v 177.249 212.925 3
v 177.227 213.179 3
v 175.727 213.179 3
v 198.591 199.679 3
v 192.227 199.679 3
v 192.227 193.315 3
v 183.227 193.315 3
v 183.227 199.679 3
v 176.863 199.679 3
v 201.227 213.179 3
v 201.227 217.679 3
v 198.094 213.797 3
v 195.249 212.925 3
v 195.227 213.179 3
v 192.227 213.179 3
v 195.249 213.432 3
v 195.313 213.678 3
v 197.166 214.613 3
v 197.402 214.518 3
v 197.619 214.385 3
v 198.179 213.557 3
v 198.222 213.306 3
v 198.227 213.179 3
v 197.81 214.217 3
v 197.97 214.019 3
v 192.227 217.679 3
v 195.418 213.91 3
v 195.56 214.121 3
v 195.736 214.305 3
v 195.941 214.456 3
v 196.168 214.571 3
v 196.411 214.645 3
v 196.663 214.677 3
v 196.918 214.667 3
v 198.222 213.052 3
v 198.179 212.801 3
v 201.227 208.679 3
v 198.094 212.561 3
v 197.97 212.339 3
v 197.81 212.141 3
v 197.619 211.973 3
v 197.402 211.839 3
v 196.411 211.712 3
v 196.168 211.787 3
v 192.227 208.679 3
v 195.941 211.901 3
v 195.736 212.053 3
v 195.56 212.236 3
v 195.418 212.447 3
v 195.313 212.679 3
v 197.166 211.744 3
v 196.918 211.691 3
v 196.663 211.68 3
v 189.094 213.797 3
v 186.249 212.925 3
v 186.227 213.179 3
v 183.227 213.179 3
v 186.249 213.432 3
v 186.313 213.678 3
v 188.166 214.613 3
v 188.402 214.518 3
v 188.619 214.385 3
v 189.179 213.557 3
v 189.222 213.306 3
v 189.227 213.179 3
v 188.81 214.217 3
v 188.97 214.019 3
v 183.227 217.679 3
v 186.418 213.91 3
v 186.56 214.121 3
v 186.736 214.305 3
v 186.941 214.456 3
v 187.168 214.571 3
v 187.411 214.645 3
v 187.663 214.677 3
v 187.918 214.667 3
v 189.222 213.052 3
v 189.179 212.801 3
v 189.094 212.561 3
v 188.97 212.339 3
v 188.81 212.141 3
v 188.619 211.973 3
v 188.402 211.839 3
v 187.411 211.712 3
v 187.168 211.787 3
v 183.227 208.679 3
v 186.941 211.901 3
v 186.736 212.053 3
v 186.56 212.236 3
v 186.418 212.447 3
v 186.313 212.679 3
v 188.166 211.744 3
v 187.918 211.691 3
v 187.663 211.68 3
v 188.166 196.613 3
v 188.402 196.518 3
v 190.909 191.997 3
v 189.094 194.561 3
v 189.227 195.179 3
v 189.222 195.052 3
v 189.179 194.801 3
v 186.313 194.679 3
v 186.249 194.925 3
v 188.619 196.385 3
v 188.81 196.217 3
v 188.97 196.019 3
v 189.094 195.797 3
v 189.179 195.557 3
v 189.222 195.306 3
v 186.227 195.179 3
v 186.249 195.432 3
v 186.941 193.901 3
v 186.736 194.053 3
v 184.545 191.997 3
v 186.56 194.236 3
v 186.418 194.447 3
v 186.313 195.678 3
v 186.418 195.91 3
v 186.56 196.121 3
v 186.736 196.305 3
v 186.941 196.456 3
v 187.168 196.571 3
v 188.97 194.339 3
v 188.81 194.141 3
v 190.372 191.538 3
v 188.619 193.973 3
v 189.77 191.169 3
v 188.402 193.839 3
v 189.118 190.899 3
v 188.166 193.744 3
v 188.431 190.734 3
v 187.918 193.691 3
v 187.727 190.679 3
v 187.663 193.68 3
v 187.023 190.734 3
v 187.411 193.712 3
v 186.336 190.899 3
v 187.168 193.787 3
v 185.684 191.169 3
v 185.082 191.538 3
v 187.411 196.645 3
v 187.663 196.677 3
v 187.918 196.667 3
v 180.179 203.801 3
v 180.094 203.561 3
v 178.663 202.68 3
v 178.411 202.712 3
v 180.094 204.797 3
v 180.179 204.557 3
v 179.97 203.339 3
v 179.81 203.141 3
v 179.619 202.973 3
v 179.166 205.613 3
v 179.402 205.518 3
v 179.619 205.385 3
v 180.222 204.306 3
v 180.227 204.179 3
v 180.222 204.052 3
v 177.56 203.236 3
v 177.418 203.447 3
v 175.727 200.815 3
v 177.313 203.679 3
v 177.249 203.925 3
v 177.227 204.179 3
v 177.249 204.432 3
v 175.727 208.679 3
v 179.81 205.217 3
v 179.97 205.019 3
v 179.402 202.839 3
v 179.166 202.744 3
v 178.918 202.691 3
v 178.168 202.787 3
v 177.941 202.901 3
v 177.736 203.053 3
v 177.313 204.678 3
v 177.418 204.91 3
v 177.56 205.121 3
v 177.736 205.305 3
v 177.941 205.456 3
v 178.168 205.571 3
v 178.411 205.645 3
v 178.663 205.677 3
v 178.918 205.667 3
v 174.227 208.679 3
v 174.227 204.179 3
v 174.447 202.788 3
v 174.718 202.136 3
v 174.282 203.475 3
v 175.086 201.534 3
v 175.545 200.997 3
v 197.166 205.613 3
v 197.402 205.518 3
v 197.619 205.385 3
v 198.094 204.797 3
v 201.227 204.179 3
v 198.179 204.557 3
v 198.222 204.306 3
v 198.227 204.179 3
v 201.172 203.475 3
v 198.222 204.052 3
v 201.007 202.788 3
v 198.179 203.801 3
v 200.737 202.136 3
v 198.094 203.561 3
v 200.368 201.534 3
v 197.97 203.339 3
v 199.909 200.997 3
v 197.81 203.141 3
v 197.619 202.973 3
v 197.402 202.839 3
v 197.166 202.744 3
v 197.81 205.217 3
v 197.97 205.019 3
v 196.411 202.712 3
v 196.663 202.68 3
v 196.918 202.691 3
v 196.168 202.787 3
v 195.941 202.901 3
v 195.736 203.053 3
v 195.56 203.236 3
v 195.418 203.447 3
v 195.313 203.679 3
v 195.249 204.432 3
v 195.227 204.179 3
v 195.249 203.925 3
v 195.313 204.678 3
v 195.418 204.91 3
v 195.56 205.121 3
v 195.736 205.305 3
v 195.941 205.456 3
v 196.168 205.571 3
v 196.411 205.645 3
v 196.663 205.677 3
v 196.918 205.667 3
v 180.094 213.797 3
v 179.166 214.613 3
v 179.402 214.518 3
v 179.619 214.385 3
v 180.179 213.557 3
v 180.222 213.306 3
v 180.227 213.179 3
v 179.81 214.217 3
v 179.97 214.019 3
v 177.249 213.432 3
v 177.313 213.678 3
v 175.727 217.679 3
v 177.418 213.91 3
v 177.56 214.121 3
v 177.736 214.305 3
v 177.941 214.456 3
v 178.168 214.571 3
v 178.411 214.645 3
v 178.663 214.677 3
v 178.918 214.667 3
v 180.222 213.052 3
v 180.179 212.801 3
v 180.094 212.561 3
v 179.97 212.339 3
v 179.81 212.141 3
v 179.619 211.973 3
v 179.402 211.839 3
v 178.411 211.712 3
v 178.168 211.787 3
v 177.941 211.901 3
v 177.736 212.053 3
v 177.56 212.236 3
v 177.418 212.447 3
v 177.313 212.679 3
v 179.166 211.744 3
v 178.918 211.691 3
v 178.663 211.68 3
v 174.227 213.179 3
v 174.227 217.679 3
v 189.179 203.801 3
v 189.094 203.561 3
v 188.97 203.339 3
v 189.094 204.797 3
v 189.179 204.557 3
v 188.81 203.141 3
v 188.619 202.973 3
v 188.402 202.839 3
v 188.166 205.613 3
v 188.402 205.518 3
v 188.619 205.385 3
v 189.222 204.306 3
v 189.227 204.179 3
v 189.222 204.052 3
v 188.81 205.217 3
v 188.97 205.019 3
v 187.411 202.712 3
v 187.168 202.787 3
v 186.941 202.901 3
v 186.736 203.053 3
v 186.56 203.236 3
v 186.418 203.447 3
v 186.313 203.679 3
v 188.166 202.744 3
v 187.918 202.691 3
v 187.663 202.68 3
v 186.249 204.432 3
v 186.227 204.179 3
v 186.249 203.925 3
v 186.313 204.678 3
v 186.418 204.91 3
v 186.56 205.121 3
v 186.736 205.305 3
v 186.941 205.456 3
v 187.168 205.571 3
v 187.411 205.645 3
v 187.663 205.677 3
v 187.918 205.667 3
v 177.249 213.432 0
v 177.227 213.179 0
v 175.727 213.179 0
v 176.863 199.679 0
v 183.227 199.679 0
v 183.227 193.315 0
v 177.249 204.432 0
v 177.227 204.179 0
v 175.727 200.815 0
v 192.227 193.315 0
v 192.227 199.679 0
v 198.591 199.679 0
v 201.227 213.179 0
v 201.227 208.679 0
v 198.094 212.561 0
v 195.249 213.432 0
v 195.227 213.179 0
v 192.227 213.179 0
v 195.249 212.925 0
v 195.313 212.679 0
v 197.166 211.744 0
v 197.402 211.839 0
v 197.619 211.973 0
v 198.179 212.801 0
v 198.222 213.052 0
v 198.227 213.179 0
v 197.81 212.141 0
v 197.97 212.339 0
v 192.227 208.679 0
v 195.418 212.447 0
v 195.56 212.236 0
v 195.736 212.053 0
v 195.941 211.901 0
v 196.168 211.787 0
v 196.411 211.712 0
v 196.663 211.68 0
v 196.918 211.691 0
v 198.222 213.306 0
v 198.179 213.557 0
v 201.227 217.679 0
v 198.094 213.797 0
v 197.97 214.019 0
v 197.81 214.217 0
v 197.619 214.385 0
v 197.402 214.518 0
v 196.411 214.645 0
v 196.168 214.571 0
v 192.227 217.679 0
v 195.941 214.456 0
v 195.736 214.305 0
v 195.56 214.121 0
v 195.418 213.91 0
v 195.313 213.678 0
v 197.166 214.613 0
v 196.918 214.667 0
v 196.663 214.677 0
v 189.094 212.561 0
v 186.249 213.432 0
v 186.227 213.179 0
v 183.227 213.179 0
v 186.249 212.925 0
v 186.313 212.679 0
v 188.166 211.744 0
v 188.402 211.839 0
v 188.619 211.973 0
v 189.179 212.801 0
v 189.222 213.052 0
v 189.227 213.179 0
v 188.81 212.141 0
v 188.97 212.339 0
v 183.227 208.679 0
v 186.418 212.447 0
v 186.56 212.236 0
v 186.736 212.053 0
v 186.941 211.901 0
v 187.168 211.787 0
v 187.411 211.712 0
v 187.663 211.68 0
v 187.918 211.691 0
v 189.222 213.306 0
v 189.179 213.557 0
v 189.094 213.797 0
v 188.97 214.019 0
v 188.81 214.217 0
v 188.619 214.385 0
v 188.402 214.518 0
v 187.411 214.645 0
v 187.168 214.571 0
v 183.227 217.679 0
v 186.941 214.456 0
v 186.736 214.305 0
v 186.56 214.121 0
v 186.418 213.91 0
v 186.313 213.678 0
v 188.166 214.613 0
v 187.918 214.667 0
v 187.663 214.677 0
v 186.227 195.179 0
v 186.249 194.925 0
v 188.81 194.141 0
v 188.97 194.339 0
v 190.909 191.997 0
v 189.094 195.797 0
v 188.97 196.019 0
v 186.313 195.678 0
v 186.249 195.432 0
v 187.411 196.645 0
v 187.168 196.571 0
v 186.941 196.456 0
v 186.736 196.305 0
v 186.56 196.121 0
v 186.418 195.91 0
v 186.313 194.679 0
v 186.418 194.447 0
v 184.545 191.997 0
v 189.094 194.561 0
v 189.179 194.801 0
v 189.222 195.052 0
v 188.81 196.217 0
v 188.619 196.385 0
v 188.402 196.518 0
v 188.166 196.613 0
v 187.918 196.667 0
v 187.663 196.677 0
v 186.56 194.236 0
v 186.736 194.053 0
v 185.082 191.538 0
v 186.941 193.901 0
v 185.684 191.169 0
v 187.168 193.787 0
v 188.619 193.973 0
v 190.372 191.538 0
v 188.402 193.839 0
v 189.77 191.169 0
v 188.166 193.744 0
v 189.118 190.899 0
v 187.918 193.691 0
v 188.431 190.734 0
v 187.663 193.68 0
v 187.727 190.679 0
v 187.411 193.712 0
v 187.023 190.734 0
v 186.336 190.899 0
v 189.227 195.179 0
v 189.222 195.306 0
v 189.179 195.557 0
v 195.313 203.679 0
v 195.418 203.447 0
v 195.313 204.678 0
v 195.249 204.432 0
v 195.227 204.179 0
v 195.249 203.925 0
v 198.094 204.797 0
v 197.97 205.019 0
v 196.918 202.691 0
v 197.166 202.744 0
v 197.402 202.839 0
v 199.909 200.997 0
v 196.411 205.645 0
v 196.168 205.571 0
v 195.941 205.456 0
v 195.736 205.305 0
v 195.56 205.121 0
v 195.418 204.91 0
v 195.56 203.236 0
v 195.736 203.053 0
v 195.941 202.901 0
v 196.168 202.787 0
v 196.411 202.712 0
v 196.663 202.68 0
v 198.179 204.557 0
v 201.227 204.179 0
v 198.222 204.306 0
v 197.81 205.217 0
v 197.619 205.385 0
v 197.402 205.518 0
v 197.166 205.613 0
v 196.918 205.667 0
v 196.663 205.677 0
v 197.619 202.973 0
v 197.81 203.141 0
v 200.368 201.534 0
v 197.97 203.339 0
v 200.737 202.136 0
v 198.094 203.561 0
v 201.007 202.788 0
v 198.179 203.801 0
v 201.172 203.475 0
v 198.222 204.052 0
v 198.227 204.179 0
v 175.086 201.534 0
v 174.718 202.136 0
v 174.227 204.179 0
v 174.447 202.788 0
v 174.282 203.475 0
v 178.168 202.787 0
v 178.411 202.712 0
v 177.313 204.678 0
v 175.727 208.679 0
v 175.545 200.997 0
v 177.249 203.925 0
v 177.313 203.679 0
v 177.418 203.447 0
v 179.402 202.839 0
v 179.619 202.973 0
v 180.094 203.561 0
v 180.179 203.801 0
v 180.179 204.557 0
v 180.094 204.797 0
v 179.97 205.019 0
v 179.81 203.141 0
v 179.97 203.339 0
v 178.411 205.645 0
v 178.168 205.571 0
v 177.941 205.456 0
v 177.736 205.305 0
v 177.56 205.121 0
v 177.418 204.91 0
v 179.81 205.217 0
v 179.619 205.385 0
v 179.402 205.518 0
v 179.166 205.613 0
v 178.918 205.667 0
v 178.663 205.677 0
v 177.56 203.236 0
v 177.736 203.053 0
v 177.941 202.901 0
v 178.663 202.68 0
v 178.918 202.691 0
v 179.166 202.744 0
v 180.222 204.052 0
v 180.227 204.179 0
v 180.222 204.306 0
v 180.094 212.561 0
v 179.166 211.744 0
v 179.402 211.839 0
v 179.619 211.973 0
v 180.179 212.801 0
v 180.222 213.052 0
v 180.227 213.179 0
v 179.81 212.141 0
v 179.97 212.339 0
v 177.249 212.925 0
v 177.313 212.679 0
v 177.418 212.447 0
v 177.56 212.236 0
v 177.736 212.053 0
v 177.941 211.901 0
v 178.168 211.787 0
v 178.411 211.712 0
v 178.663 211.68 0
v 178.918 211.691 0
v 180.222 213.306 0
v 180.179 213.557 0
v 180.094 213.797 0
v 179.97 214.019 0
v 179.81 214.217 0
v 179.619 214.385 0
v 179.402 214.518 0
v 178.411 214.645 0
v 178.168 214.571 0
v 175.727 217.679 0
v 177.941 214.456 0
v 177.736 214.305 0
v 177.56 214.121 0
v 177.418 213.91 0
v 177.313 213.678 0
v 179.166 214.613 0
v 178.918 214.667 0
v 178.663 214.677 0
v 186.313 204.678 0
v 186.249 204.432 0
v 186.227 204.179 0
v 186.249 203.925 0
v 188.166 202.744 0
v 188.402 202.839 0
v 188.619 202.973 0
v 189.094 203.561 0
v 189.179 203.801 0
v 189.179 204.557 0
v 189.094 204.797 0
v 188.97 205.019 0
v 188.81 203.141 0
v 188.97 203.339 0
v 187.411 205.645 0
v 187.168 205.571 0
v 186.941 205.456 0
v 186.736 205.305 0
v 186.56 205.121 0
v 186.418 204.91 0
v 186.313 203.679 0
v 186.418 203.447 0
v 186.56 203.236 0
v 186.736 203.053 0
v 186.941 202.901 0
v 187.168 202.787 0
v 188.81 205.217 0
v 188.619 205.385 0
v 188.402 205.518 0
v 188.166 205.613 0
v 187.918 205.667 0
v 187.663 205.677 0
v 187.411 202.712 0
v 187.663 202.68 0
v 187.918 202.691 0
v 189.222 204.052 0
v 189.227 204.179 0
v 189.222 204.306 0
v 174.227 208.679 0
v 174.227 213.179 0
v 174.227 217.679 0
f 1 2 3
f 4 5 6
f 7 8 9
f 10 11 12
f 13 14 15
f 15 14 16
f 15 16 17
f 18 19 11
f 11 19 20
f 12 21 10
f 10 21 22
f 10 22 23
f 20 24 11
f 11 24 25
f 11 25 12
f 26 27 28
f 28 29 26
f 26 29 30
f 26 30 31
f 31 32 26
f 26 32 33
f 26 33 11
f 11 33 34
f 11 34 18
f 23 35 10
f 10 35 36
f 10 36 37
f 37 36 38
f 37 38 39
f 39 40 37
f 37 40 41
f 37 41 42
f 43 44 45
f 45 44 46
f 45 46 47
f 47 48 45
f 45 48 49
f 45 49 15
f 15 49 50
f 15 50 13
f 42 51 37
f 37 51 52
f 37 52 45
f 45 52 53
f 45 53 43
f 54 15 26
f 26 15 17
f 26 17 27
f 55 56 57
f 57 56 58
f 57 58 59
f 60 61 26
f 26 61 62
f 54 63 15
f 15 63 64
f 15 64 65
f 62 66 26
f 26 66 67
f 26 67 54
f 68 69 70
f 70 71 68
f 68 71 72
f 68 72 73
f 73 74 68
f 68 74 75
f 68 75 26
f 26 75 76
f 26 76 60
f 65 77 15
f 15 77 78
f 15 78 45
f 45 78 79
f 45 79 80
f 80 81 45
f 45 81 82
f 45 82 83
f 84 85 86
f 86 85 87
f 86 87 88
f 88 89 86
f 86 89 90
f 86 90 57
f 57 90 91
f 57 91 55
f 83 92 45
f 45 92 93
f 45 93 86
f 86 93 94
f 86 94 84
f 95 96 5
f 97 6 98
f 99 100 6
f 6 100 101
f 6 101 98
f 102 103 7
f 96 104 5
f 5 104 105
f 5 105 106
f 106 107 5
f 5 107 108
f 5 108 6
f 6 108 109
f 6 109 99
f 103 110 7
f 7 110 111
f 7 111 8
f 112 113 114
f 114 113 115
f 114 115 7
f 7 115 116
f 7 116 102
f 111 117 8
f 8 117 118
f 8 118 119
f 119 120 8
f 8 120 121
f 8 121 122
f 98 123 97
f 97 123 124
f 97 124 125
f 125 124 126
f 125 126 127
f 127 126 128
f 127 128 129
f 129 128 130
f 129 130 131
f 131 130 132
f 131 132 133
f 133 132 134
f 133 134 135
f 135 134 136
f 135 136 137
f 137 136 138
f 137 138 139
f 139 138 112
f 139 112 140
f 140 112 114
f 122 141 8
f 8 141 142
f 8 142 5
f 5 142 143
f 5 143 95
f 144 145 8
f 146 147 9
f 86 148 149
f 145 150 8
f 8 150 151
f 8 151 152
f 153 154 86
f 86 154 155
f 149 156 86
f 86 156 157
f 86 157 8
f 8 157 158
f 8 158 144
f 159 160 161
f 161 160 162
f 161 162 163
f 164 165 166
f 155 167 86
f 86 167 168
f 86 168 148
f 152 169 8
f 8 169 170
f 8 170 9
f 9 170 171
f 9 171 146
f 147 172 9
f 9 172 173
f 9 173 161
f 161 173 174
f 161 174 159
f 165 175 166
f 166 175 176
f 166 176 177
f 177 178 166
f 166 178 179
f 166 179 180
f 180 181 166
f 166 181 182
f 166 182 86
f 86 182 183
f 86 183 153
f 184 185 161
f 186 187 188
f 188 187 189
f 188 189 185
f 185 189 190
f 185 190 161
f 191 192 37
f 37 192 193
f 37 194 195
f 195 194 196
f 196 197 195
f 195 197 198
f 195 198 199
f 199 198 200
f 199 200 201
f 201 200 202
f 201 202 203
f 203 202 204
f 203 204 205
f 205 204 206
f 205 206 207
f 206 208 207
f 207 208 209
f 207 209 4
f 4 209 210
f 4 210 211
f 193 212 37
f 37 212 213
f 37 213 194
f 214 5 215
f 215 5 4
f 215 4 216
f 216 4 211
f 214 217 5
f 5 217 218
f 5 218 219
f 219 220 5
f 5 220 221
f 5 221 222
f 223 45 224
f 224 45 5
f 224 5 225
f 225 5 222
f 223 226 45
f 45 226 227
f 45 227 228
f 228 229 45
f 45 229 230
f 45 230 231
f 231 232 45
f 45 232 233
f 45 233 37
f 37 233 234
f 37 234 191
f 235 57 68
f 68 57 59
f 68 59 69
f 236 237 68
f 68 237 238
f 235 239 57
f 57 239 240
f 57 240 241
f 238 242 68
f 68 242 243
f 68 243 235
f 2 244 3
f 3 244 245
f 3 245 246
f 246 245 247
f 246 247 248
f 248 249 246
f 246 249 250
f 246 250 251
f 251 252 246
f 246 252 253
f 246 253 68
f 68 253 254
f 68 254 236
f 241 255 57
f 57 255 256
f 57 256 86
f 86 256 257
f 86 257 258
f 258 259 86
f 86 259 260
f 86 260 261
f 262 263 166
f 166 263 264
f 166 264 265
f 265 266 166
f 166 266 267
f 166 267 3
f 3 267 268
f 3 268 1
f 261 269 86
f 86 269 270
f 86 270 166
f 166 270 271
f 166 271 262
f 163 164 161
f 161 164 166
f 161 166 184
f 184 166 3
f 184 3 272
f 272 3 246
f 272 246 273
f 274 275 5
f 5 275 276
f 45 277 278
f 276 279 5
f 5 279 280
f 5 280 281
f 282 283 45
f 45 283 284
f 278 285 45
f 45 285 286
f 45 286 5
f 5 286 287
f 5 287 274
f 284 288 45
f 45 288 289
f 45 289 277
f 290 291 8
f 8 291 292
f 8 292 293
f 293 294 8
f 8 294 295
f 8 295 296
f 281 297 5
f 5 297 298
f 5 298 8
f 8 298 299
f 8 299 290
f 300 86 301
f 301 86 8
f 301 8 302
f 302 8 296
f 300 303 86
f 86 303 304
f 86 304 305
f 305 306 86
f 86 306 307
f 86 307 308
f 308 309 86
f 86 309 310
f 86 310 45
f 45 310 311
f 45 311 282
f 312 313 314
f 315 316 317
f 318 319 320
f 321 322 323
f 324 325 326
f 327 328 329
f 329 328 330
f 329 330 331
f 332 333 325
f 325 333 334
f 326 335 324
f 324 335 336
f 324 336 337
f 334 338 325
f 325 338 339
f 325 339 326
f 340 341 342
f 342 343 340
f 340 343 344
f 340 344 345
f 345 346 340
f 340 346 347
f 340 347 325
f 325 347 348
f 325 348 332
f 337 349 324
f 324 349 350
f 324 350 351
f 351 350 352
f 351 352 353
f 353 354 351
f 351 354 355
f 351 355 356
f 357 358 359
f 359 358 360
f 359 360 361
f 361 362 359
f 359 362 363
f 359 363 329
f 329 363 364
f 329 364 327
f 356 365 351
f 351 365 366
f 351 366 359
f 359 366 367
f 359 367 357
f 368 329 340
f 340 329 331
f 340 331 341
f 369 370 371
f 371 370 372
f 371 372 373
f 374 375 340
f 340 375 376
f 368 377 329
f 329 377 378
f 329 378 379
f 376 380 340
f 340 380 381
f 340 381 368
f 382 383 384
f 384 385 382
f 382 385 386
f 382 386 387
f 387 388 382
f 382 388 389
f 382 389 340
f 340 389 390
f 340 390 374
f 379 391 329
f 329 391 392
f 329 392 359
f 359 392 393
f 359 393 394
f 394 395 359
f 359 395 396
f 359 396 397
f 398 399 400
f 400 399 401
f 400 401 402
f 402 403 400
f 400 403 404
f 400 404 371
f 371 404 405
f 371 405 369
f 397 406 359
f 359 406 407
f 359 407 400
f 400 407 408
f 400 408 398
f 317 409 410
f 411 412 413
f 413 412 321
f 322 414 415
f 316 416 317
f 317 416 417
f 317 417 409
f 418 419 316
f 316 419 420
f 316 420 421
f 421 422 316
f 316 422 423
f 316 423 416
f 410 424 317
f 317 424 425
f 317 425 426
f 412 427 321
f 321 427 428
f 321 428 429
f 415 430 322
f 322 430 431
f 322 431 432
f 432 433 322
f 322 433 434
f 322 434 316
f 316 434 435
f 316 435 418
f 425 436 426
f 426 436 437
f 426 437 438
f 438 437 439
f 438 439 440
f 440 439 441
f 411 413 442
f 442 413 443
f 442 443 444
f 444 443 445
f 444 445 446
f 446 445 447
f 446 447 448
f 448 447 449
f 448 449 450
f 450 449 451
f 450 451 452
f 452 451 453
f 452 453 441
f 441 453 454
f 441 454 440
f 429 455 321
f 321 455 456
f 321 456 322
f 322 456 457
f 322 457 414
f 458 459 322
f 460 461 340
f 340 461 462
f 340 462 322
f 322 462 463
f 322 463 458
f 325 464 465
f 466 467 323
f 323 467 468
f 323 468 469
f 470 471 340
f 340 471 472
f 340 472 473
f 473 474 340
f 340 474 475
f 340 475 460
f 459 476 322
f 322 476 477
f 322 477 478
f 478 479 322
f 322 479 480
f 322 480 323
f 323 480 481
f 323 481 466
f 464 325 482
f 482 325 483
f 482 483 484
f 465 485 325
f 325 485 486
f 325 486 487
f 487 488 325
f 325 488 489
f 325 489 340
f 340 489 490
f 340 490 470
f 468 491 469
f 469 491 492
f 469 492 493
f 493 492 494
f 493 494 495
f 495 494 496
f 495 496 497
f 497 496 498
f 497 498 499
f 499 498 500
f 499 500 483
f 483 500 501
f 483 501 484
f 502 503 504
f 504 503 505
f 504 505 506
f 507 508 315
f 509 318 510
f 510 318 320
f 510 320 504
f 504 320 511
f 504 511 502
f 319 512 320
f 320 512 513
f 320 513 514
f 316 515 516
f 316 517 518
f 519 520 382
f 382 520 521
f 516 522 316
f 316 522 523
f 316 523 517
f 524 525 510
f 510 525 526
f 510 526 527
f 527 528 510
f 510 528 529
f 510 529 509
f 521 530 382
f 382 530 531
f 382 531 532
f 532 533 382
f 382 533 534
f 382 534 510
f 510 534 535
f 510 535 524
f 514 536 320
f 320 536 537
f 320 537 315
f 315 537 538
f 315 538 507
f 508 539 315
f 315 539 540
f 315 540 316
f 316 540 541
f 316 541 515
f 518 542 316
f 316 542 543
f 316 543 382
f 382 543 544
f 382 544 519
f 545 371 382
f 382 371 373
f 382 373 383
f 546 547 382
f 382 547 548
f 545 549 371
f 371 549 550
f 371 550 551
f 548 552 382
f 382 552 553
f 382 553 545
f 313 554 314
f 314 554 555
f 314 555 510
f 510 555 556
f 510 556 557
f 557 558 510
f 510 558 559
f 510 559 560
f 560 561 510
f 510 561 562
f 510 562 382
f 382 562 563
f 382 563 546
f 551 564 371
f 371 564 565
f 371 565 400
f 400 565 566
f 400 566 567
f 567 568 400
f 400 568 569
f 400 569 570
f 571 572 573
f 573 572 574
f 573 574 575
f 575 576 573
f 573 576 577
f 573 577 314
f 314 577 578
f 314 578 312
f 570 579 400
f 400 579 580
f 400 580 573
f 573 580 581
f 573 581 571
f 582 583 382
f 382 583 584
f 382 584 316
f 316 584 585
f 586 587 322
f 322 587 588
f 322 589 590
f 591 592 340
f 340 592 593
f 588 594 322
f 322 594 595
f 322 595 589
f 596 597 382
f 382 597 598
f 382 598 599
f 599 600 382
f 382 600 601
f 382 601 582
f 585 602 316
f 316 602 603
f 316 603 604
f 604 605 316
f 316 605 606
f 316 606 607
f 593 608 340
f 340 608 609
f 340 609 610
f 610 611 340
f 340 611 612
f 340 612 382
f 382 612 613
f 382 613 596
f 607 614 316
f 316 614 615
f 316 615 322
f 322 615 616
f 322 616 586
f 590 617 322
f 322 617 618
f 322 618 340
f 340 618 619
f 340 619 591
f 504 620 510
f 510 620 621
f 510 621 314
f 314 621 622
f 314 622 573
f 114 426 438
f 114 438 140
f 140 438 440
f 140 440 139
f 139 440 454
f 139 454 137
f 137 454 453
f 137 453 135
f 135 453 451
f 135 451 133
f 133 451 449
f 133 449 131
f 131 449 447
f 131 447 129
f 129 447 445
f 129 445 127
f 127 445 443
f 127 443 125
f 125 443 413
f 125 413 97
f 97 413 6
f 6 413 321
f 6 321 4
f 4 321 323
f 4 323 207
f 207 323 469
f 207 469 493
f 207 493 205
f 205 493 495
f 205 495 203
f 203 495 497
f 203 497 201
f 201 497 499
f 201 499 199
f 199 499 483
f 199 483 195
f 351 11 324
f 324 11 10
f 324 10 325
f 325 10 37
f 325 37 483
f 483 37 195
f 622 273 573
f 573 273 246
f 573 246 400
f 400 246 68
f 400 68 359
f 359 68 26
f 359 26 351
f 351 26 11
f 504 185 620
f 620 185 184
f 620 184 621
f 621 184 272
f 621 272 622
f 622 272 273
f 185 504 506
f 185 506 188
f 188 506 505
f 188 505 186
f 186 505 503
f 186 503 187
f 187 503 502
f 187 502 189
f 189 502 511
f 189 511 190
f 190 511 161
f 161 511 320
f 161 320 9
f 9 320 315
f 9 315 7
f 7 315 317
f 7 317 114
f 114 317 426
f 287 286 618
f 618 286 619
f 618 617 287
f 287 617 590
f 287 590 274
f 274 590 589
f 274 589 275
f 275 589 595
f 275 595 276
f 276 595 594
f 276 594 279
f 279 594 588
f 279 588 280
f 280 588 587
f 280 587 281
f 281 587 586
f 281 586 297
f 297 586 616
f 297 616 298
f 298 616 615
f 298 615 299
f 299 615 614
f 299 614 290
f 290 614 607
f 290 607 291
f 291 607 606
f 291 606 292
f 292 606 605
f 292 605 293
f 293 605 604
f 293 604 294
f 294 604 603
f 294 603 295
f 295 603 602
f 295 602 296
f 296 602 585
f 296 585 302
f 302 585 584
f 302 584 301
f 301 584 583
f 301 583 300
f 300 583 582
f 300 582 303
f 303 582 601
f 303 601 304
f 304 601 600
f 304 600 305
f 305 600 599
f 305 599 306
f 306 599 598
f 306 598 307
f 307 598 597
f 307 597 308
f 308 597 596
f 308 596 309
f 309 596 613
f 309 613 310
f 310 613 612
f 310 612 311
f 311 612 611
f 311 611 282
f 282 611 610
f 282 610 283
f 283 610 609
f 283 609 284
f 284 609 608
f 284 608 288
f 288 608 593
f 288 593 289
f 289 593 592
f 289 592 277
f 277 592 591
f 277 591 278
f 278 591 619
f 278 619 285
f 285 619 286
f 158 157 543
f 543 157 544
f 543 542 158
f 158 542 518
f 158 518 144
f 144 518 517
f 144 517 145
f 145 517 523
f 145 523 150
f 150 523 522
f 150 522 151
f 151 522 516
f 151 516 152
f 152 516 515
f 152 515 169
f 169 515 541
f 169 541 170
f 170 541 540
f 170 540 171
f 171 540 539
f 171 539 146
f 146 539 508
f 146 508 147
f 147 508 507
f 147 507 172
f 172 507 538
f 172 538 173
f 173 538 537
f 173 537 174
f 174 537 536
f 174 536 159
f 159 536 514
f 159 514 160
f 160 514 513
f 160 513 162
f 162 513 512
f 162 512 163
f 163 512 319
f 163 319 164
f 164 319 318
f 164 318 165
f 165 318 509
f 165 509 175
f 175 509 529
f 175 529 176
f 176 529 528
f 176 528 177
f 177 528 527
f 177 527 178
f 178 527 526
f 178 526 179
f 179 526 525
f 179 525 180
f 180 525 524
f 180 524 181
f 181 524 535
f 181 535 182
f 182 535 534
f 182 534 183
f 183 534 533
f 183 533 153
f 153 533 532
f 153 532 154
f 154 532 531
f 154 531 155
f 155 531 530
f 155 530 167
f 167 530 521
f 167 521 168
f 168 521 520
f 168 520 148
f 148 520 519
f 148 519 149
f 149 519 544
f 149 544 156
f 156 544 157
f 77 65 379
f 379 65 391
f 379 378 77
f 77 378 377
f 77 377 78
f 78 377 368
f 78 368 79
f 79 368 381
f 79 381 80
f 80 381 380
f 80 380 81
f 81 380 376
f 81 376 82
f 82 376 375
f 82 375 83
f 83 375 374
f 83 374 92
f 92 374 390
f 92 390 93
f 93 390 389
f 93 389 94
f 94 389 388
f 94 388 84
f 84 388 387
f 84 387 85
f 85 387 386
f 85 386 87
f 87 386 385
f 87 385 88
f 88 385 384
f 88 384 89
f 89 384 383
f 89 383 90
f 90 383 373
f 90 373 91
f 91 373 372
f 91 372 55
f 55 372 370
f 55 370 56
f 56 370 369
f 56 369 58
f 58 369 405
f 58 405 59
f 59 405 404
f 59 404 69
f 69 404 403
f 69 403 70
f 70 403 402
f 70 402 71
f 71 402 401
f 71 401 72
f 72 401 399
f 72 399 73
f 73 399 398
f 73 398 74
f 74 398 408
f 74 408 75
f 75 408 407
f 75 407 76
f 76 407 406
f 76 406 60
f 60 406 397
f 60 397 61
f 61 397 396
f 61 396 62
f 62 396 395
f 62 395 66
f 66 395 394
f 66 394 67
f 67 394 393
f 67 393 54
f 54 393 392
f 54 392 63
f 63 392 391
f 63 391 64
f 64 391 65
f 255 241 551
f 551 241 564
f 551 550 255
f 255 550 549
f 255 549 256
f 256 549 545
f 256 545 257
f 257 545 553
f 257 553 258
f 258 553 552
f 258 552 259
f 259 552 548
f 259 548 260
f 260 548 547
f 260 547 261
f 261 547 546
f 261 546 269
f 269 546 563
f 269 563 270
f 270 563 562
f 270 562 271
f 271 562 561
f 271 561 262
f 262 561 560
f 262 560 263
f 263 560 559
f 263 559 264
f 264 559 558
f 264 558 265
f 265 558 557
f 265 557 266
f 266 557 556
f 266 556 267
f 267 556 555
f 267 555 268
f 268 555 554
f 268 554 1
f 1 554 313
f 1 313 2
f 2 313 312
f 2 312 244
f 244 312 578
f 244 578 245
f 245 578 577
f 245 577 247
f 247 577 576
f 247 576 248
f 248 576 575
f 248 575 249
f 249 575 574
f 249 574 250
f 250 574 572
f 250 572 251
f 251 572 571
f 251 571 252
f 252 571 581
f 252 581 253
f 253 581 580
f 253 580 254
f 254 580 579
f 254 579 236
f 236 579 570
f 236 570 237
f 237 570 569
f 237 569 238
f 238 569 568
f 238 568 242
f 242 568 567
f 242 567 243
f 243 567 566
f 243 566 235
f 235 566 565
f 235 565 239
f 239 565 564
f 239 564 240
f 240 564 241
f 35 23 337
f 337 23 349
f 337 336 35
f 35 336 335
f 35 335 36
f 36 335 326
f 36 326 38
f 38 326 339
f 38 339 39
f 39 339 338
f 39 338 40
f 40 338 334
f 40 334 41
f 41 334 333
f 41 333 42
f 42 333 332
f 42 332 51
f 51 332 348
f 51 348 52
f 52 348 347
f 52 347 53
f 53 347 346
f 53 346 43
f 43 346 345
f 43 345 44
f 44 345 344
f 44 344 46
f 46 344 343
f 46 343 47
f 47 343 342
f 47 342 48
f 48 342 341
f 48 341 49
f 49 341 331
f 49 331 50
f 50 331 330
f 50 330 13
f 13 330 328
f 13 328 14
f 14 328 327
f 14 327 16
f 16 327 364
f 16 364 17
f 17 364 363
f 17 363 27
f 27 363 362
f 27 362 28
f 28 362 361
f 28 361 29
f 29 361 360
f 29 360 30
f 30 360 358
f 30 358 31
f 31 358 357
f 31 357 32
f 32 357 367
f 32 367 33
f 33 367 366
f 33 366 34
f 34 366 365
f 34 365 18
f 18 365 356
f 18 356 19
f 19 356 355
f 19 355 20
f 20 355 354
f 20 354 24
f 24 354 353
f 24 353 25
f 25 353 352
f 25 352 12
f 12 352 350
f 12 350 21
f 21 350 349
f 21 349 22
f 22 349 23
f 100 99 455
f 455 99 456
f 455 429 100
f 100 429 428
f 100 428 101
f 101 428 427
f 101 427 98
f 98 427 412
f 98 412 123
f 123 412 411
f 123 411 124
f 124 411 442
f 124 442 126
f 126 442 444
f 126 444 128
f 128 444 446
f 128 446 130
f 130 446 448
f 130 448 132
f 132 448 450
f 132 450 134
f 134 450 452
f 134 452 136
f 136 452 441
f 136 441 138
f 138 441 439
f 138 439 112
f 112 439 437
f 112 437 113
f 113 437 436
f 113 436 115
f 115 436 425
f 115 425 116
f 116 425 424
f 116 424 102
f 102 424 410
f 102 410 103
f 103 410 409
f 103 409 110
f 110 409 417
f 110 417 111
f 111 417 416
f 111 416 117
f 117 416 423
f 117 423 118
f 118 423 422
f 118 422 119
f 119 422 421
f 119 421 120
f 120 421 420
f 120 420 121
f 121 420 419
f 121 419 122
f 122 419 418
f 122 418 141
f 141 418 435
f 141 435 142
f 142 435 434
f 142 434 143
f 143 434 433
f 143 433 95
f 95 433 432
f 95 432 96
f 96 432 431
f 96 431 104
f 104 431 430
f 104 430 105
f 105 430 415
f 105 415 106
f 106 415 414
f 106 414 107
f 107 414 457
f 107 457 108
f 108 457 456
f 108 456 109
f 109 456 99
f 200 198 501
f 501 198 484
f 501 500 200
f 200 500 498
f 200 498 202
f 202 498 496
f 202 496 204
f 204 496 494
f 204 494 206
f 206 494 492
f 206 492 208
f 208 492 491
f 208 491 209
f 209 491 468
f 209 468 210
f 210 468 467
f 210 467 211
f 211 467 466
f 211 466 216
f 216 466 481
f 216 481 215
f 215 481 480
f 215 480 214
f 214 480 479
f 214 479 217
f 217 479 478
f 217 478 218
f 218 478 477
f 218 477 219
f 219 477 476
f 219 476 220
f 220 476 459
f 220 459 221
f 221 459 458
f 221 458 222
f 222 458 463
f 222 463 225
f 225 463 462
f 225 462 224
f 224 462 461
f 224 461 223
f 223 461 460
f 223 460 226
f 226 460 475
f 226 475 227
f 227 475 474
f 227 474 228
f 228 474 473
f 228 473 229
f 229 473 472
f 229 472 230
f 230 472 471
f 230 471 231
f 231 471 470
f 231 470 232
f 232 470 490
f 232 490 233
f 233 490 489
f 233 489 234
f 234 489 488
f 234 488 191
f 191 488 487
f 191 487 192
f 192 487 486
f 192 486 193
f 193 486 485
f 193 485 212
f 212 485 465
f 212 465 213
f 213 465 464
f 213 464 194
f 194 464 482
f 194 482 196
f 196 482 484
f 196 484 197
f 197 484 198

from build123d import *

# Parameters (mm, degrees)
MODEL_R                 = 1.5
SALIENTE_EXTRUIR1_DEPTH = 3


with BuildPart() as part:
    # Model → Saliente-Extruir1 (new body)
    with BuildSketch(Plane.XY):
        with BuildLine():
            Line((174.227054575, 213.178720063), (174.227054575, 204.178720063))
            ThreePointArc((174.227054575, 204.178720063), (174.569596678, 202.456644617), (175.545074059, 200.996739548))
            Line((175.545074059, 200.996739548), (184.545074059, 191.996739548))
            ThreePointArc((184.545074059, 191.996739548), (187.727054575, 190.678720063), (190.90903509, 191.996739548))
            Line((190.90903509, 191.996739548), (199.90903509, 200.996739548))
            ThreePointArc((199.90903509, 200.996739548), (200.884512471, 202.456644617), (201.227054575, 204.178720063))
            Line((201.227054575, 204.178720063), (201.227054575, 217.678720063))
            Line((201.227054575, 217.678720063), (174.227054575, 217.678720063))
            Line((174.227054575, 217.678720063), (174.227054575, 213.178720063))
        make_face()
        with Locations((187.727054575, 204.178720063)):
            Circle(MODEL_R, mode=Mode.SUBTRACT)
        with Locations((178.727054575, 204.178720063)):
            Circle(MODEL_R, mode=Mode.SUBTRACT)
        with Locations((187.727054575, 213.178720063)):
            Circle(MODEL_R, mode=Mode.SUBTRACT)
        with Locations((178.727054575, 213.178720063)):
            Circle(MODEL_R, mode=Mode.SUBTRACT)
        with Locations((196.727054575, 213.178720063)):
            Circle(MODEL_R, mode=Mode.SUBTRACT)
        with Locations((187.727054575, 195.178720063)):
            Circle(MODEL_R, mode=Mode.SUBTRACT)
        with Locations((196.727054575, 204.178720063)):
            Circle(MODEL_R, mode=Mode.SUBTRACT)
    extrude(amount=SALIENTE_EXTRUIR1_DEPTH)


solid = part.part
